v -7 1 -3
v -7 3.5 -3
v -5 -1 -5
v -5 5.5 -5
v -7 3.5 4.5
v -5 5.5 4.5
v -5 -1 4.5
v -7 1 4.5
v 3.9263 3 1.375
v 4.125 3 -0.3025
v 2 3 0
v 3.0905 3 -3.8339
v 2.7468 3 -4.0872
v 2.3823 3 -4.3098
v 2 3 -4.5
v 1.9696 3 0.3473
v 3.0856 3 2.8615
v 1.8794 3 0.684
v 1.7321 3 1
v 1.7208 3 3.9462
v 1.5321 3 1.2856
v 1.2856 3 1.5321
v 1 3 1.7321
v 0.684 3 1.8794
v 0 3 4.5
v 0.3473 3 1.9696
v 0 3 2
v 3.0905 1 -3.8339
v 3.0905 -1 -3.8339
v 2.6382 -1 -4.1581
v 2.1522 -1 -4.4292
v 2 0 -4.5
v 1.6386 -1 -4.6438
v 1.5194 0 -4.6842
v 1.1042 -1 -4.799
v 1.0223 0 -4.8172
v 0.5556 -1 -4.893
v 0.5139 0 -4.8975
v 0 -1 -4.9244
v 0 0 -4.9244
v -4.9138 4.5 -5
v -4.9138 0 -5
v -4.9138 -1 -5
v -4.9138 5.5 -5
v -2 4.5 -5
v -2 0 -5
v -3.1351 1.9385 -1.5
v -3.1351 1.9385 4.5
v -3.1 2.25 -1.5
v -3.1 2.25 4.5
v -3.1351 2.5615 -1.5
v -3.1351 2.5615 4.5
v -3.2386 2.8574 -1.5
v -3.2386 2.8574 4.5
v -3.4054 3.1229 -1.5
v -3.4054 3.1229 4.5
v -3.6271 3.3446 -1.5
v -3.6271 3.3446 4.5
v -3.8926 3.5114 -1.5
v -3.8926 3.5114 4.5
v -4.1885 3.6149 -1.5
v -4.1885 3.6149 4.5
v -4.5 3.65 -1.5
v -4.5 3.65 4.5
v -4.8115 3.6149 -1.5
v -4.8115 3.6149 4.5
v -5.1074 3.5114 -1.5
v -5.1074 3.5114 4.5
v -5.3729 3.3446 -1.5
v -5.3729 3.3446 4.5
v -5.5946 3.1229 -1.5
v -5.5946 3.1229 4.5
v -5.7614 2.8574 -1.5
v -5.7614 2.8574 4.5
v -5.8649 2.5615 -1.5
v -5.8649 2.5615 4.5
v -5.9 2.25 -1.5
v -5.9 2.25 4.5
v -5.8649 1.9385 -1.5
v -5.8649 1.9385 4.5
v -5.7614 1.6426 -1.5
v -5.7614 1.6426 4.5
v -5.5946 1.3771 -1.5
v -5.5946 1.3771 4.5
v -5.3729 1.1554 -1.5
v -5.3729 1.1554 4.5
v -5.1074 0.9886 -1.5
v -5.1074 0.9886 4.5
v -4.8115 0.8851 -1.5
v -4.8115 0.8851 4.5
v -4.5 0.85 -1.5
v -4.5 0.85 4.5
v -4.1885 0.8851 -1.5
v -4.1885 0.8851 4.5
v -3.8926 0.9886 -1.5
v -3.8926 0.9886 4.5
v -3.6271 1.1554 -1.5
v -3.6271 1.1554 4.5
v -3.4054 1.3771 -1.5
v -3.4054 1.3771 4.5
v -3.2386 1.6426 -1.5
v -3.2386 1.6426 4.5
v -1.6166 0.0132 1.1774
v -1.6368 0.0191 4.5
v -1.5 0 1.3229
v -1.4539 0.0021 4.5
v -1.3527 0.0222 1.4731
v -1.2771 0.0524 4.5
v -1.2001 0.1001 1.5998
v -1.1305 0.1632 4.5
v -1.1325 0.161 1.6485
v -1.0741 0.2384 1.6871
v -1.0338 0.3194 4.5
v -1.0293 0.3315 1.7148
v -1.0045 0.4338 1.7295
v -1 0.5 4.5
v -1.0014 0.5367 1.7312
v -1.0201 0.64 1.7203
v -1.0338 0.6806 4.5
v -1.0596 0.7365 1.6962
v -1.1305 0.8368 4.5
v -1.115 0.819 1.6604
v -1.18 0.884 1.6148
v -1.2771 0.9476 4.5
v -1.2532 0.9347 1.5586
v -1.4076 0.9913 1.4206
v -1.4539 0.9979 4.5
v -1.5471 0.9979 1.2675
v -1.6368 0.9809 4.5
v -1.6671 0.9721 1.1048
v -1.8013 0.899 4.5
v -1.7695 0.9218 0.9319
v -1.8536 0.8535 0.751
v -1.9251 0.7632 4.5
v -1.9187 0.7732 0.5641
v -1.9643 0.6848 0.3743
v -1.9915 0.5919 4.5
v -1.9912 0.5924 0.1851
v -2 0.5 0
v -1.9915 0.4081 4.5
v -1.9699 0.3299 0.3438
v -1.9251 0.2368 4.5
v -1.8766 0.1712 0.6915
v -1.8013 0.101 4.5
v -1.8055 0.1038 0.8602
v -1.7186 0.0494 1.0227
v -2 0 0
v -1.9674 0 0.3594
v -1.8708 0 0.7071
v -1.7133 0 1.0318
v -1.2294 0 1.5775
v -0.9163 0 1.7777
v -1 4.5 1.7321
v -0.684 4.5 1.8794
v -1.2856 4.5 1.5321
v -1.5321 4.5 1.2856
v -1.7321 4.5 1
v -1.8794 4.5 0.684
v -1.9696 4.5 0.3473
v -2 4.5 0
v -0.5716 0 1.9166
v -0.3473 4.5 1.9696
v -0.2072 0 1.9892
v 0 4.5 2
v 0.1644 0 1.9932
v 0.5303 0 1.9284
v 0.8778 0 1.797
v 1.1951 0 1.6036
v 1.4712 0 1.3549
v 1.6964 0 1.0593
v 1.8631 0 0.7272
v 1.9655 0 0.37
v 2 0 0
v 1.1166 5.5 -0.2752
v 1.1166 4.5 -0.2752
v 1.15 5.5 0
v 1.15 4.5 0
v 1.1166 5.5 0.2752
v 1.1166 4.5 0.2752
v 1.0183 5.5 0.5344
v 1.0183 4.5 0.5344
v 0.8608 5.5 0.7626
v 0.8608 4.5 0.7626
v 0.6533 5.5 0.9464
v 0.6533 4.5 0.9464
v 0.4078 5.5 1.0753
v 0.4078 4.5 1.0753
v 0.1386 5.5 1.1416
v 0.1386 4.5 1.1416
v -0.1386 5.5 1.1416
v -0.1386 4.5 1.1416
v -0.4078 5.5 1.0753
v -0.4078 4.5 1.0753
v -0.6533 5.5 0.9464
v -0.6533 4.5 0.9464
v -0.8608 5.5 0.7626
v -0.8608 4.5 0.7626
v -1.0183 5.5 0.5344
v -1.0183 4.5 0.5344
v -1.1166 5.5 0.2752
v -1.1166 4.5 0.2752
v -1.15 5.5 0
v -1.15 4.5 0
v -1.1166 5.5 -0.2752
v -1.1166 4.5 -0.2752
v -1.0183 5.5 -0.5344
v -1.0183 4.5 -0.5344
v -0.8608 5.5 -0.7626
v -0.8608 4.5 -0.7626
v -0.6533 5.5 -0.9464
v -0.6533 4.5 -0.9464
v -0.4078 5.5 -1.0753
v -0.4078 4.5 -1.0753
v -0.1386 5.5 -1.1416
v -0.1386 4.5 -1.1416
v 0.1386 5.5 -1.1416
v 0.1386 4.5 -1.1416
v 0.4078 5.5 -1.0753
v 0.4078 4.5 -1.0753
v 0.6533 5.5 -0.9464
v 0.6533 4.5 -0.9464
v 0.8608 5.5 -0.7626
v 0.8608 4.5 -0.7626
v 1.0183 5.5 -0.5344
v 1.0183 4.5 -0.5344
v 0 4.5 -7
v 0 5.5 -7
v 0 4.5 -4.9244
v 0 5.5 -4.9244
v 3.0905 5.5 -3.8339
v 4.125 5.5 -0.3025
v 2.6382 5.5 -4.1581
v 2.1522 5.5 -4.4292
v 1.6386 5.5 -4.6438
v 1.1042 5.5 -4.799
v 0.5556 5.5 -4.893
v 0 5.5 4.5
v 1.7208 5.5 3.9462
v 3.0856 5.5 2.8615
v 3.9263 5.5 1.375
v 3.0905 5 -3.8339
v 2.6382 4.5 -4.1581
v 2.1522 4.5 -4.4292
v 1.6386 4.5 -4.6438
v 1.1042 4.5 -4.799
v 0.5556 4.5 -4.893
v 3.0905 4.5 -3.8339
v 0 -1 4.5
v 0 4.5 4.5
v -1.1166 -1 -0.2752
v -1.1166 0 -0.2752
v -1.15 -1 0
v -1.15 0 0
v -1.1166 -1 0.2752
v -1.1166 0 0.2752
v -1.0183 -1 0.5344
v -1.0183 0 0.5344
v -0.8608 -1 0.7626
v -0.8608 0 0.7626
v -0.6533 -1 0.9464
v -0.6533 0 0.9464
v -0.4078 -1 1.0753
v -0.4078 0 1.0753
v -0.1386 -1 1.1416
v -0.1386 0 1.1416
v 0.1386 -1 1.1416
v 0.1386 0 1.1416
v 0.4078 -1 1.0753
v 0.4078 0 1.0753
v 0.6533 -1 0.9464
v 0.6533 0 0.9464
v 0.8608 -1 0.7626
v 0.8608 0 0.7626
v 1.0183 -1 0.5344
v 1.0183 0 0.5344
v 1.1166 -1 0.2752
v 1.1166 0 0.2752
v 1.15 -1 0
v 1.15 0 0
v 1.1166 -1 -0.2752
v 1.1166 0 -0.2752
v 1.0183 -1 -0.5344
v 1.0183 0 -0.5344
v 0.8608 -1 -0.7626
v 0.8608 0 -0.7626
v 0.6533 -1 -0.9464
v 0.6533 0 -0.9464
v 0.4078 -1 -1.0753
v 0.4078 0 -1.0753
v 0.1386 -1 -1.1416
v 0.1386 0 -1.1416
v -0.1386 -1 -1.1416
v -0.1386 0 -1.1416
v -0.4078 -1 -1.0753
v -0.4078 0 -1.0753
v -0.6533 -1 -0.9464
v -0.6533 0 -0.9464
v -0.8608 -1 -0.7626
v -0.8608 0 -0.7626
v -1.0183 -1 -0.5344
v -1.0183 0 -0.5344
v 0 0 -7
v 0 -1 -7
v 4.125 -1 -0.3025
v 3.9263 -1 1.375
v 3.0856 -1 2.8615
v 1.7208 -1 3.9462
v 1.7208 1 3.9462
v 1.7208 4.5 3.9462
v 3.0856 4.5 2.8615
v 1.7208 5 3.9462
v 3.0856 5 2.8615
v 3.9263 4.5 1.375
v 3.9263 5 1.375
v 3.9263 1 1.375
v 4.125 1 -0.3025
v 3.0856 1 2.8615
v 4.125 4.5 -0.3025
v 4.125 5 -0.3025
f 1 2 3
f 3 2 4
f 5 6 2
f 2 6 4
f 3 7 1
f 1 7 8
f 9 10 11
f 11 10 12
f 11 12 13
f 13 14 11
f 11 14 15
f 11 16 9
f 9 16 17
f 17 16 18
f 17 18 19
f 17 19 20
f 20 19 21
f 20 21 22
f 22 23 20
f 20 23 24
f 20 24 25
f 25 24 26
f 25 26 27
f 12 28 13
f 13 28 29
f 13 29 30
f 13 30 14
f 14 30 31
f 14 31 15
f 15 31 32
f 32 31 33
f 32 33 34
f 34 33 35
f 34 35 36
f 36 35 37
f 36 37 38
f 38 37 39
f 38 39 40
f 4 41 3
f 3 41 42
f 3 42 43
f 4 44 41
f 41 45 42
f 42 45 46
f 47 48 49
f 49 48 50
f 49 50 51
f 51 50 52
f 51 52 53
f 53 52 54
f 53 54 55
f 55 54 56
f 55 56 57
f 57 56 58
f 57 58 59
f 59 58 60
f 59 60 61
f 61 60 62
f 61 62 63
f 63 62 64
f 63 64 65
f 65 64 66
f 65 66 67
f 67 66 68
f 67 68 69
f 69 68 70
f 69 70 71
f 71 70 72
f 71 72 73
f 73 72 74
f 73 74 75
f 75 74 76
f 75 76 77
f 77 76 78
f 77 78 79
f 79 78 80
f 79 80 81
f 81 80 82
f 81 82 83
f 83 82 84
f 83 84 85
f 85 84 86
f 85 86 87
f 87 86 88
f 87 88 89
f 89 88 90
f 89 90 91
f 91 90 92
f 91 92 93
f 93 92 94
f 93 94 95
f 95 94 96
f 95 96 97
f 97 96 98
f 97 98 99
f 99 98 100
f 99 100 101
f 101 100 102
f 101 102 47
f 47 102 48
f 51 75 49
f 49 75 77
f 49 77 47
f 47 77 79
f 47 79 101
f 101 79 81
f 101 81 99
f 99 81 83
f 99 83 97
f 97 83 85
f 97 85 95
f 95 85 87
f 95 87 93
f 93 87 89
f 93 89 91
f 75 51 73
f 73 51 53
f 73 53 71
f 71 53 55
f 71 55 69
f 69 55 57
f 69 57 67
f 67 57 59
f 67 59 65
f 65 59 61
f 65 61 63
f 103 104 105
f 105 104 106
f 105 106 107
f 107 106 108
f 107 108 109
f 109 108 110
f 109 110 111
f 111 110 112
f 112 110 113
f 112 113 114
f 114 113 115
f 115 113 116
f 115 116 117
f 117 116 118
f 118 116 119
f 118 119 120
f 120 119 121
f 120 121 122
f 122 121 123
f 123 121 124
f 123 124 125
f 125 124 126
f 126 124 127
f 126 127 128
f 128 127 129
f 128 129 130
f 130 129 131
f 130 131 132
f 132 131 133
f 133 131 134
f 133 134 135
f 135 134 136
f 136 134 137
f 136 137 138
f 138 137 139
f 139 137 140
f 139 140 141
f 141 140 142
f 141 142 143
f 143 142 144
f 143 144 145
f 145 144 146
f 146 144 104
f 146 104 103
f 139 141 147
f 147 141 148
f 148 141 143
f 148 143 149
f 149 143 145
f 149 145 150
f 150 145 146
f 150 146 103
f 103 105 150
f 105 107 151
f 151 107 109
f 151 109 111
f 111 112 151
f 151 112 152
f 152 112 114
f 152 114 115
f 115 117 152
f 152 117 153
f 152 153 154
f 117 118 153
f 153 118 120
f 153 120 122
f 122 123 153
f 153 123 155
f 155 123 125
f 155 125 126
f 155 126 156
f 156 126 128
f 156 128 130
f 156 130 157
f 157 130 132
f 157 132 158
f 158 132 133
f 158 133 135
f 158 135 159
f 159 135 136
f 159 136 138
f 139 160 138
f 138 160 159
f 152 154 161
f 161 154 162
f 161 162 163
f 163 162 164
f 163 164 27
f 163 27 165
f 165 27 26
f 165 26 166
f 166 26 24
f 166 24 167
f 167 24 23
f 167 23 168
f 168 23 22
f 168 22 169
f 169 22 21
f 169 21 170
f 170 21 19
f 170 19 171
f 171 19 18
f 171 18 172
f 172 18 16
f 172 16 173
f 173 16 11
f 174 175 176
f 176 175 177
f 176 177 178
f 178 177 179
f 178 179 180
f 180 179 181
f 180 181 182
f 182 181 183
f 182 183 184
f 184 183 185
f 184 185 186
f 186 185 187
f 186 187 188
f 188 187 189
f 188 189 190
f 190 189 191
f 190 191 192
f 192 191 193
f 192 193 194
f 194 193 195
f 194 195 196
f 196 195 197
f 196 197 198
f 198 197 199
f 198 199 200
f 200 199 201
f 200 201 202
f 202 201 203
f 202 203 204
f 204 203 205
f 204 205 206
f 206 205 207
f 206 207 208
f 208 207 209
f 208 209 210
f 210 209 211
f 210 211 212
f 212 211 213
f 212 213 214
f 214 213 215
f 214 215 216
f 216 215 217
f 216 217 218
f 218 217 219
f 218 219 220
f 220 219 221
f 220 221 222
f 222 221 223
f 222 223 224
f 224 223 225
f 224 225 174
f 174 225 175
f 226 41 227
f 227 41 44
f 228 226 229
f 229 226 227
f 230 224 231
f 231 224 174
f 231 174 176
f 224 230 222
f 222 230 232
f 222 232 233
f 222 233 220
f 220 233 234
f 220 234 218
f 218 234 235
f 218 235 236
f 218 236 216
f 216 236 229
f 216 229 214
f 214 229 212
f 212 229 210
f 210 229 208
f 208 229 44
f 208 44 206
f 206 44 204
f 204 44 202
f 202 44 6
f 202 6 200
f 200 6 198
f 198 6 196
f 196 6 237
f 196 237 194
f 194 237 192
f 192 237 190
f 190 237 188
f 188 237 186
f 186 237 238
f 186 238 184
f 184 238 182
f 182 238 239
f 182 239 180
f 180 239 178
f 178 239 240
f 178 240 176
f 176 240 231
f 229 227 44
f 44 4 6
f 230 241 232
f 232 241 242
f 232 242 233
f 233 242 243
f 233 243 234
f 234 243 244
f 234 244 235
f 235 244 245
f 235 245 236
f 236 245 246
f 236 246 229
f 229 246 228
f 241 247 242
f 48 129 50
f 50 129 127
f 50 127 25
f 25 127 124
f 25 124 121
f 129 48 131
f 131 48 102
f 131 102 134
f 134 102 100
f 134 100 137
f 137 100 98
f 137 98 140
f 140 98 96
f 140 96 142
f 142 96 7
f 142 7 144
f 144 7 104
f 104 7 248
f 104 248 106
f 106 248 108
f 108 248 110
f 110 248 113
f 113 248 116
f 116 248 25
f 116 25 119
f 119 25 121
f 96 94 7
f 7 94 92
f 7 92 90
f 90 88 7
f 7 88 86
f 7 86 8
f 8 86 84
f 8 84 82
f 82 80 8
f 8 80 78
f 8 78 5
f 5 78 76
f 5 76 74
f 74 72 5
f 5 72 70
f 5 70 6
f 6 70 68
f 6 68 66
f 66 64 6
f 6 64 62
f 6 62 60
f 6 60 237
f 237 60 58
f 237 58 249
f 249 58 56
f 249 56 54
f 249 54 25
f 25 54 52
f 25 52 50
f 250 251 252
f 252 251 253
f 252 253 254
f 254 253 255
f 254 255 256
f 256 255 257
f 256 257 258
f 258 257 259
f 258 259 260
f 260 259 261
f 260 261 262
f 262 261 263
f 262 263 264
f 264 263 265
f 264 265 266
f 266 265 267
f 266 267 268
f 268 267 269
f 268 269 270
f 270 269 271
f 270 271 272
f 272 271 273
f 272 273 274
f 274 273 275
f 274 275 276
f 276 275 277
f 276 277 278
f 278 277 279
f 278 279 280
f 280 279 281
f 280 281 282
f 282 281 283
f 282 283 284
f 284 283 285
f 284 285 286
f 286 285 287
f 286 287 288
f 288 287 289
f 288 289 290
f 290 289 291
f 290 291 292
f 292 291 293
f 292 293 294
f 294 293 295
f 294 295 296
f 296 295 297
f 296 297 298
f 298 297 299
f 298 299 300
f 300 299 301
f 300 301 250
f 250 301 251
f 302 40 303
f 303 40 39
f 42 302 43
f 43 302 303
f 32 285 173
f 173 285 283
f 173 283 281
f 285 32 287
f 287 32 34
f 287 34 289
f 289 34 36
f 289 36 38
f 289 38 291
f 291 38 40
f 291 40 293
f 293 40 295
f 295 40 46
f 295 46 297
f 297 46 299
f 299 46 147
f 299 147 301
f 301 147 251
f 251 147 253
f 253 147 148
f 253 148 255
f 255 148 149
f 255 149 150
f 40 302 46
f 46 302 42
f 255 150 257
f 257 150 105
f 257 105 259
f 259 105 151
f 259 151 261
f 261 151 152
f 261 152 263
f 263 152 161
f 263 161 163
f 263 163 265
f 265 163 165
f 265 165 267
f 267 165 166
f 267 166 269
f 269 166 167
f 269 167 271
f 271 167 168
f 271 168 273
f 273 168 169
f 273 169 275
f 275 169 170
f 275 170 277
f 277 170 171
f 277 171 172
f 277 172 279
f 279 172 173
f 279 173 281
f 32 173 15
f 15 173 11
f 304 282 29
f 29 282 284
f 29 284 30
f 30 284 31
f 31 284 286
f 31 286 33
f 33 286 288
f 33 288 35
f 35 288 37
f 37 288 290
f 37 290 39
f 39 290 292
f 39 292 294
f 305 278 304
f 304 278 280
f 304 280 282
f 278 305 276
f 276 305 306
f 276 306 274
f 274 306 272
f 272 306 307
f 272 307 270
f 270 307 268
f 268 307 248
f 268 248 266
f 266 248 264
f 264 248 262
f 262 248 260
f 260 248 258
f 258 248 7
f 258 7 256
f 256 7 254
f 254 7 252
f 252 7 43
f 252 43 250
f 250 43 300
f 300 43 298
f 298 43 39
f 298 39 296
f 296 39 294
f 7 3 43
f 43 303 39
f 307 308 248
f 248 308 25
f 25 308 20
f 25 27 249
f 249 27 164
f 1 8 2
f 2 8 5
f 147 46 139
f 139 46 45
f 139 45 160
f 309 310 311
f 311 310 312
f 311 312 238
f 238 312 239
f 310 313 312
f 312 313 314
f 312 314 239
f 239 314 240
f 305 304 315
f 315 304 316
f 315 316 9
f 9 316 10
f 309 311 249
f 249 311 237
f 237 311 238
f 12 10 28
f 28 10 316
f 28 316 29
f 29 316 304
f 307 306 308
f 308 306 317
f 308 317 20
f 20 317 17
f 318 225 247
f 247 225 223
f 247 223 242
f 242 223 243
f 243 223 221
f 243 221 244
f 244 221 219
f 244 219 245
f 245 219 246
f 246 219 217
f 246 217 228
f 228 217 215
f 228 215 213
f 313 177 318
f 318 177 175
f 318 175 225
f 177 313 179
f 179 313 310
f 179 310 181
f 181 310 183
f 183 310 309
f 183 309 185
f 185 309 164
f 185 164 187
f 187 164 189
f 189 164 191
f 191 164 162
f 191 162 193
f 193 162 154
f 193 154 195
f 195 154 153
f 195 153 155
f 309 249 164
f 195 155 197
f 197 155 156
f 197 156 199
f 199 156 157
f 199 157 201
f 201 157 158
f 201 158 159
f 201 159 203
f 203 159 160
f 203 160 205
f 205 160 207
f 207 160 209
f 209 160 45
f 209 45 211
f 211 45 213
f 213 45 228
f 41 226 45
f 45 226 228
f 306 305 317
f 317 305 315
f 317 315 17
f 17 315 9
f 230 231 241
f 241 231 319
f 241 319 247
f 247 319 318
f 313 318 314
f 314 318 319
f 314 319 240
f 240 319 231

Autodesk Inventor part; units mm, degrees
ref_plane "YZ Plane" through (0, 0, 0) normal (1, 0, 0) x (0, 1, 0)
ref_plane "XZ Plane" through (0, 0, 0) normal (0, 1, 0) x (-1, 0, 0)
ref_plane "XY Plane" through (0, 0, 0) normal (0, 0, 1) x (1, 0, 0)
sketch "スケッチ1" plane through (0, 0, 0) normal (0, 1, 0) x (-1, 0, 0)
  circle A0 centre (0, 0) radius 1.15
  circle A1 centre (0, 0) radius 2
  circle A2 centre (0, 0) radius 5
  line L0 (0, 0) -> (7, 0)
  line L1 (7, 0) -> (7, 4.5)
  line L2 (7, 4.5) -> (0, 4.5)
  line L3 (0, 4.5) -> (0, 0)
  line L4 (0, 0) -> (7, 0)
  line L5 (7, 0) -> (7, -5)
  line L6 (7, -5) -> (0, -5)
  line L7 (0, -5) -> (0, 0)
  line L8 (0, 4.5) -> (-2, 4.5)
  line L9 (-2, 4.5) -> (-2, 0)
  line L10 (-2, 0) -> (0, 0)
  line L11 (0, 0) -> (0, 4.5)
  circle A3 centre (0, 0) radius 3
  line L12 (-2, 0) -> (-2, -5)
  line L13 (-2, -5) -> (0, -5)
  line L14 (2, 0) -> (2, -5)
  circle A4 centre (0, 0) radius 4.9244
  line L15 (-2, 0) -> (-4.9244, 0)
  line L16 (0, -4.9244) -> (0, -5.9244)
  line L17 (0, -5.9244) -> (7, -5.9244)
  line L18 (7, -5.9244) -> (7, -5)
  line L19 (7, -5) -> (0, -5.9244)
  line L20 (0, -5.9244) -> (4.9138, -5)
  line L21 (0, -5) -> (0, -7)
  line L22 (0, -7) -> (4.9138, -5)
  point P0 (0, 2)
  point P1 (-2, 2.2361)
  point P2 (-2, -2.2361)
  point P3 (-2, -4.5826)
  point P4 (-2, -4.5)
  point P5 (0, -4.9244)
  dimension "d2" = 10
  dimension "d0" = 2.3
  dimension "d1" = 4
  dimension "d3" = 7
  dimension "d4" = 4.5
  dimension "d5" = 6
  dimension "d22" = 1
  dimension "d34" = 5
  dimension "d39" = 2
extrude "押し出し1" add sketch "スケッチ1" along normal blind 4.5 contours A1 L3 A3 L0 | L0 A3 L14 | A3 L3 L2 A4 L0 | L0 A4 L14 A3 | A4 L2 A2 L0 | L0 A2 L14 A4 | L0 L5 L6 L14 A2 | A2 L2 L1 L0
extrude "押し出し2" add sketch "スケッチ1" along normal blind 3 contours A1 L9 A3 L3 | L15 A3 L9 | L12 A3 L15 | A3 L9 L8 L3 | A3 L15 A4 L9 | L12 A4 L15 A3
extrude "押し出し3" add sketch "スケッチ1" against normal blind 1 contours L0 A1 L7 A0 | A0 L3 A1 L0 | A0 L10 A1 L3 | L7 A1 L10 A0 | L14 A3 L7 A1 | A1 L3 A3 L0 | L0 A3 L14 | A1 L9 A3 L3 | L7 A3 L12 A1 | A3 L3 L2 A4 L0 | L0 A4 L14 A3 | L14 A4 L7 A3 | L15 A3 L9 | L12 A3 L15 | A3 L9 L8 L3 | L7 A4 L12 A3 | A4 L2 A2 L0 | L0 A2 L14 A4 | L14 A2 L7 A4 | A3 L15 A4 L9 | L12 A4 L15 A3 | L0 L5 L6 L14 A2 | A2 L2 L1 L0 | L14 L6 A2 | L6 L20 L16 | L19 L22 L17 | L20 L22 L19 | L17 L22 L21
sketch "スケッチ2" plane through (0, 4.5, 0) normal (0, 1, 0) x (1, 0, 0)
  circle A0 centre (0, 0) radius 1.15
  circle A1 centre (0, 0) radius 2
  circle A2 centre (0, 0) radius 4.9244
  line L0 (0, 0) -> (2, 0)
  line L1 (2, 0) -> (2, -4.5)
  line L2 (2, -4.5) -> (0, -4.5)
  line L3 (0, -4.5) -> (0, 0)
  line L4 (-2, 5) -> (-7, 5) projected
  line L5 (0, -4.5) -> (-7, -4.5)
  line L6 (-7, -4.5) -> (-7, 5)
  line L7 (-7, 5) -> (0, 5)
  line L8 (0, 5) -> (0, -4.5)
  line L9 (0, 0) -> (2, 0)
  line L10 (2, 0) -> (2, 5)
  line L11 (2, 5) -> (0, 5)
  line L12 (0, 5) -> (0, 0)
  line L13 (0, 5) -> (-7, 5)
  line L14 (0, 5.9244) -> (0, 5)
  line L15 (-7, 5) -> (0, 5.9244)
  line L16 (0, 5.9244) -> (-4.9138, 5)
  line L17 (-2, 5) -> (-7, 5) projected
  line L18 (0, 5) -> (0, 7)
  line L19 (0, 7) -> (-4.9138, 5)
  point P0 (0, 4.9244)
  dimension "d12" = 4
  dimension "d35" = 5
  dimension "d40" = 2
extrude "押し出し4" add sketch "スケッチ2" along normal blind 1 contours L0 A1 L3 A0 | A0 L8 A1 L0 | A0 L3 A1 L8 | L1 L2 L3 A1 | L10 A2 L1 | A1 L8 A2 L10 | A1 L3 L5 A2 L8 | A2 L5 L6 L4 L7 L8 | L7 L4 L16 L14 | L16 L19 L15 | L15 L19 L18
sketch "スケッチ4" plane through (0, 3, 4.5) normal (0, 0, 1) x (1, 0, 0)
  line L0 (-7, 2.5) -> (2, 2.5) projected
  line L1 (-7, 2.5) -> (-4.5, 2.5)
  line L2 (-4.5, 2.5) -> (-4.5, -0.75)
  line L3 (-4.5, -0.75) -> (-7, -0.75)
  line L4 (-7, -0.75) -> (-7, 2.5)
  circle A0 centre (-4.5, -0.75) radius 1.4
  line L5 (0, -3) -> (0, -2.5)
  line L6 (0, -2.5) -> (-1.5, -2.5)
  circle A1 centre (-1.5, -2.5) radius 0.5
  dimension "d23" = 2.5
  dimension "d24" = 3.25
  dimension "d25" = 2.8
  dimension "d26" = 0.5
  dimension "d27" = 1.5
  dimension "d28" = 1
extrude "押し出し6" cut sketch "スケッチ4" against normal blind 6 contours A0 L3 L2 | L2 L3 A0 | A1
chamfer "面取り2" distance 2 angle 45 3 edges at (-7, 5.5, -0.25) (-7, -1, -0.25) (-7, 2.25, -5)
chamfer "面取り3" distance 2 angle 45 2 edges at (2, 5, 4.5) (2, 1, 4.5)
chamfer "面取り4" distance 2 angle 45 2 edges at (3.6246, 5, 3.3335) (3.6246, 1, 3.3335)
chamfer "面取り5" distance 2 angle 45 2 edges at (4.6513, 1, 1.6172) (4.6513, 5, 1.6172)
chamfer "面取り6" distance 2 angle 45 2 edges at (4.9108, 1, -0.3659) (4.9108, 5, -0.3659)
chamfer "面取り7" distance 2 angle 45 2 edges at (4.3603, 5, -2.2887) (4.3603, 1, -2.2887)
properties part number "rod5.7"
